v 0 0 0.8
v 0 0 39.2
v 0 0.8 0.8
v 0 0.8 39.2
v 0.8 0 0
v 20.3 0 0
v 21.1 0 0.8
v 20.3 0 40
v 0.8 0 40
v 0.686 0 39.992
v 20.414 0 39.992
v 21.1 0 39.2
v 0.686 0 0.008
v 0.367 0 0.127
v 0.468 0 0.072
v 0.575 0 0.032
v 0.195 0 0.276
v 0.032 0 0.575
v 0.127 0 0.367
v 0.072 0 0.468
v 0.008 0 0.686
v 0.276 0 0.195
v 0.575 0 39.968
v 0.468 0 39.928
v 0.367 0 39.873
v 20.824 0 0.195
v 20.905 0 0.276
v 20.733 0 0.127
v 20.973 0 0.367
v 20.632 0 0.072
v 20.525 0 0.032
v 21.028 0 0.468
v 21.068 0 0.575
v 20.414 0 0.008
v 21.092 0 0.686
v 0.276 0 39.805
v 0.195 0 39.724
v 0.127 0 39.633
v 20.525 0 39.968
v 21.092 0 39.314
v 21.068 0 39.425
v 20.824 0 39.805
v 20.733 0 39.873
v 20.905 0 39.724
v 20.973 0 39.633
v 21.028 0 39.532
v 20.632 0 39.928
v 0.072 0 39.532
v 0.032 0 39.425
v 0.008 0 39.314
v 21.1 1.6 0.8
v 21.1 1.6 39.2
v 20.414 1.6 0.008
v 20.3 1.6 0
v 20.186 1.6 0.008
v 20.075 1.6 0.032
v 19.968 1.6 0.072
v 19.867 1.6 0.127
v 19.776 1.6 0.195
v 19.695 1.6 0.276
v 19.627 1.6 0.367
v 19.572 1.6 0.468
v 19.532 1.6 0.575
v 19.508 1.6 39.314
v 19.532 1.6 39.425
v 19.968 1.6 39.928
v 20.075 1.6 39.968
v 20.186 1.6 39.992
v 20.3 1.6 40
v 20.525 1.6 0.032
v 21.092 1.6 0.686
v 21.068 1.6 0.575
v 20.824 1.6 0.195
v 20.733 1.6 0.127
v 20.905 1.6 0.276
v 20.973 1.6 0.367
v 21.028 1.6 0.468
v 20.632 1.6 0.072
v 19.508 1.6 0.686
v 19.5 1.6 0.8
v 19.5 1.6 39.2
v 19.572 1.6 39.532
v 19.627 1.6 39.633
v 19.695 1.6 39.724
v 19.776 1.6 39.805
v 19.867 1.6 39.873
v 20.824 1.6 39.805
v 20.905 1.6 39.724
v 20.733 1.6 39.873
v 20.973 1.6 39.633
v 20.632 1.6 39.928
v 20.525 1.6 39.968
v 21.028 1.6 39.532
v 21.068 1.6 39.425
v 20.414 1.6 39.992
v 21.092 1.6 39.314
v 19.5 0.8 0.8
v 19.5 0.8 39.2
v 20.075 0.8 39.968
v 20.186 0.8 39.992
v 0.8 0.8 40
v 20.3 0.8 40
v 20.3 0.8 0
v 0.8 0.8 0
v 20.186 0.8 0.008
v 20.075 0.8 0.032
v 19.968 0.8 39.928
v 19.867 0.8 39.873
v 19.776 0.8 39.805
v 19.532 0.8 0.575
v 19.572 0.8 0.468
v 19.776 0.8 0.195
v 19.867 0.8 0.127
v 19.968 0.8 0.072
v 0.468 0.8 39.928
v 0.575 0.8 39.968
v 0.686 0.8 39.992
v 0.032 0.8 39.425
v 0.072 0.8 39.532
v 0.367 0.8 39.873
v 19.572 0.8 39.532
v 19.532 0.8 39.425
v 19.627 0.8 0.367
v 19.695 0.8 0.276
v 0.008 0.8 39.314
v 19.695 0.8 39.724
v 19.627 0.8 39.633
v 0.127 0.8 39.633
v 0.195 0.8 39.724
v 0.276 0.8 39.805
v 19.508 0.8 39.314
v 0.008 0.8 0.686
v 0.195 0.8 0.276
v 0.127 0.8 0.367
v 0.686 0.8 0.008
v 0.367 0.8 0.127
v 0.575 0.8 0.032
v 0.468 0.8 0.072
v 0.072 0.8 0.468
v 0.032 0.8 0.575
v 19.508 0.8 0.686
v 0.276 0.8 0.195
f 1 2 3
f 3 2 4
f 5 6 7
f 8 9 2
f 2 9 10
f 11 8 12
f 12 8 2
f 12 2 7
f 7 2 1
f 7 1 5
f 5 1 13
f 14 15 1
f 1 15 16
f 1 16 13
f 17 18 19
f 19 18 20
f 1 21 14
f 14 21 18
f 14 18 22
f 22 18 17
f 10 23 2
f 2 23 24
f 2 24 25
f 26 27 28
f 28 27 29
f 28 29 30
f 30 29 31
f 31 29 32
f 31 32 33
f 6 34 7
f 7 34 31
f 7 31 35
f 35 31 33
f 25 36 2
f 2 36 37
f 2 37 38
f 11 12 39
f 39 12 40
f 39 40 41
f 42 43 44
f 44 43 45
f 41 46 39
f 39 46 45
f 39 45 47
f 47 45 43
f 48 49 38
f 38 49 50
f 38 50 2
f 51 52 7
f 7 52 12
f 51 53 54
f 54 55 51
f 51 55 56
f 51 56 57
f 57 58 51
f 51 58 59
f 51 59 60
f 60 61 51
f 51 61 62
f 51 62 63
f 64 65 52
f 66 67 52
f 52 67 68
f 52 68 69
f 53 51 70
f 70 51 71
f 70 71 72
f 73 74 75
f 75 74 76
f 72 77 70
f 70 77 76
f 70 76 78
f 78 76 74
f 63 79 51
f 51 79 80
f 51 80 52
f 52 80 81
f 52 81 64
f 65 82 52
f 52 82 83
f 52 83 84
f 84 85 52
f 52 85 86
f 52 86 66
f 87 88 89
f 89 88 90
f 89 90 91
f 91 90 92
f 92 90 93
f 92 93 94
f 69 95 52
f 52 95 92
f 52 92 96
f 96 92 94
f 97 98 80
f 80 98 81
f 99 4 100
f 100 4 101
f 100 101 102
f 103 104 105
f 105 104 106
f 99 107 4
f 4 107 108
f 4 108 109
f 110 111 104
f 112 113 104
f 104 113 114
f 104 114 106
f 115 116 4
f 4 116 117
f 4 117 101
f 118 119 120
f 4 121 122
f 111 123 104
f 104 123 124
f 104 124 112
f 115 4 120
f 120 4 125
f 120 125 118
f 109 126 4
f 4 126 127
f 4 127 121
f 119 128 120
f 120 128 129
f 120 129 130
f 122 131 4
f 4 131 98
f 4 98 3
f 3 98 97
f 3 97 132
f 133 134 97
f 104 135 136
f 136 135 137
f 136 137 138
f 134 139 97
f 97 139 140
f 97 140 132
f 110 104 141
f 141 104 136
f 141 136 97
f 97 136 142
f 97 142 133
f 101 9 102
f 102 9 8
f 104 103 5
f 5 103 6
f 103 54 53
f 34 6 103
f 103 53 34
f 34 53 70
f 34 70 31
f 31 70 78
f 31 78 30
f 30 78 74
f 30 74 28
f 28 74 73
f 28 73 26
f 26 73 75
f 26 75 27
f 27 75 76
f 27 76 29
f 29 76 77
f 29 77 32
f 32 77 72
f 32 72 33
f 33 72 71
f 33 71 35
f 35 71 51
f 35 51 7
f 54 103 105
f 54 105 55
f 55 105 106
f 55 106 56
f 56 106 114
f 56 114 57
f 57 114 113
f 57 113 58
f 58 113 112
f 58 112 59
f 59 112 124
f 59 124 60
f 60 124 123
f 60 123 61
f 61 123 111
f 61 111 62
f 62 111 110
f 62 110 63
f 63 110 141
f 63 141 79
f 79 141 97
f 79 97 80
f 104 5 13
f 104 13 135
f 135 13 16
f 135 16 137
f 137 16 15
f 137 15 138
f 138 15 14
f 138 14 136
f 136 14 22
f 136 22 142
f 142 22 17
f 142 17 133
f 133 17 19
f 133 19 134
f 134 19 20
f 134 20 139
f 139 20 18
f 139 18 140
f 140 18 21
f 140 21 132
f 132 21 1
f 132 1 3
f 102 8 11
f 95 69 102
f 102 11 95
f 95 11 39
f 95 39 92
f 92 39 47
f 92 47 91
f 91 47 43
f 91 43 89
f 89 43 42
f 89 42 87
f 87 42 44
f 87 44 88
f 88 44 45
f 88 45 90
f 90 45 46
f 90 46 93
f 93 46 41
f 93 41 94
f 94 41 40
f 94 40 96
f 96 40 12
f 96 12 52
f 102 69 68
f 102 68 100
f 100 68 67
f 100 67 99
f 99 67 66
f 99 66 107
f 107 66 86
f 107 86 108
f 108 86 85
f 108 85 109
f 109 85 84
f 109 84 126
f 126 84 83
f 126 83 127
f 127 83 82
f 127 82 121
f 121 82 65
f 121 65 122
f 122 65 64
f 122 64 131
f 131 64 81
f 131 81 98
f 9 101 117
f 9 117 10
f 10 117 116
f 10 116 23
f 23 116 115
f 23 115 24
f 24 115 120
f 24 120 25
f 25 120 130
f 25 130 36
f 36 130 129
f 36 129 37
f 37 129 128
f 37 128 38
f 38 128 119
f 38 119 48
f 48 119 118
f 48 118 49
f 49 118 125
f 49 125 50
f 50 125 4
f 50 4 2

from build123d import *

# Parameters (mm, degrees)
BOSS_EXTRUDE1_DEPTH = 40
FILLET1_R           = 0.8


with BuildPart() as part:
    # Sketch1 → Boss-Extrude1 (new body)
    with BuildSketch(Plane.XY):
        Polygon((0, 0), (21.1, 0), (21.1, 1.6), (19.5, 1.6), (19.5, 0.8), (0, 0.8), align=None)
    extrude(amount=BOSS_EXTRUDE1_DEPTH)

    # Fillet1
    fillet1_edges = [part.edges().sort_by_distance(p)[0] for p in [
        (19.5, 1.2, 0),
        (0, 0.4, 0),
        (21.1, 0.8, 0),
        (19.5, 1.2, 40),
        (21.1, 0.8, 40),
        (0, 0.4, 40),
    ]]
    fillet(fillet1_edges, radius=FILLET1_R - 0.0001)  # a hair under: the kernel refuses the full size


solid = part.part
